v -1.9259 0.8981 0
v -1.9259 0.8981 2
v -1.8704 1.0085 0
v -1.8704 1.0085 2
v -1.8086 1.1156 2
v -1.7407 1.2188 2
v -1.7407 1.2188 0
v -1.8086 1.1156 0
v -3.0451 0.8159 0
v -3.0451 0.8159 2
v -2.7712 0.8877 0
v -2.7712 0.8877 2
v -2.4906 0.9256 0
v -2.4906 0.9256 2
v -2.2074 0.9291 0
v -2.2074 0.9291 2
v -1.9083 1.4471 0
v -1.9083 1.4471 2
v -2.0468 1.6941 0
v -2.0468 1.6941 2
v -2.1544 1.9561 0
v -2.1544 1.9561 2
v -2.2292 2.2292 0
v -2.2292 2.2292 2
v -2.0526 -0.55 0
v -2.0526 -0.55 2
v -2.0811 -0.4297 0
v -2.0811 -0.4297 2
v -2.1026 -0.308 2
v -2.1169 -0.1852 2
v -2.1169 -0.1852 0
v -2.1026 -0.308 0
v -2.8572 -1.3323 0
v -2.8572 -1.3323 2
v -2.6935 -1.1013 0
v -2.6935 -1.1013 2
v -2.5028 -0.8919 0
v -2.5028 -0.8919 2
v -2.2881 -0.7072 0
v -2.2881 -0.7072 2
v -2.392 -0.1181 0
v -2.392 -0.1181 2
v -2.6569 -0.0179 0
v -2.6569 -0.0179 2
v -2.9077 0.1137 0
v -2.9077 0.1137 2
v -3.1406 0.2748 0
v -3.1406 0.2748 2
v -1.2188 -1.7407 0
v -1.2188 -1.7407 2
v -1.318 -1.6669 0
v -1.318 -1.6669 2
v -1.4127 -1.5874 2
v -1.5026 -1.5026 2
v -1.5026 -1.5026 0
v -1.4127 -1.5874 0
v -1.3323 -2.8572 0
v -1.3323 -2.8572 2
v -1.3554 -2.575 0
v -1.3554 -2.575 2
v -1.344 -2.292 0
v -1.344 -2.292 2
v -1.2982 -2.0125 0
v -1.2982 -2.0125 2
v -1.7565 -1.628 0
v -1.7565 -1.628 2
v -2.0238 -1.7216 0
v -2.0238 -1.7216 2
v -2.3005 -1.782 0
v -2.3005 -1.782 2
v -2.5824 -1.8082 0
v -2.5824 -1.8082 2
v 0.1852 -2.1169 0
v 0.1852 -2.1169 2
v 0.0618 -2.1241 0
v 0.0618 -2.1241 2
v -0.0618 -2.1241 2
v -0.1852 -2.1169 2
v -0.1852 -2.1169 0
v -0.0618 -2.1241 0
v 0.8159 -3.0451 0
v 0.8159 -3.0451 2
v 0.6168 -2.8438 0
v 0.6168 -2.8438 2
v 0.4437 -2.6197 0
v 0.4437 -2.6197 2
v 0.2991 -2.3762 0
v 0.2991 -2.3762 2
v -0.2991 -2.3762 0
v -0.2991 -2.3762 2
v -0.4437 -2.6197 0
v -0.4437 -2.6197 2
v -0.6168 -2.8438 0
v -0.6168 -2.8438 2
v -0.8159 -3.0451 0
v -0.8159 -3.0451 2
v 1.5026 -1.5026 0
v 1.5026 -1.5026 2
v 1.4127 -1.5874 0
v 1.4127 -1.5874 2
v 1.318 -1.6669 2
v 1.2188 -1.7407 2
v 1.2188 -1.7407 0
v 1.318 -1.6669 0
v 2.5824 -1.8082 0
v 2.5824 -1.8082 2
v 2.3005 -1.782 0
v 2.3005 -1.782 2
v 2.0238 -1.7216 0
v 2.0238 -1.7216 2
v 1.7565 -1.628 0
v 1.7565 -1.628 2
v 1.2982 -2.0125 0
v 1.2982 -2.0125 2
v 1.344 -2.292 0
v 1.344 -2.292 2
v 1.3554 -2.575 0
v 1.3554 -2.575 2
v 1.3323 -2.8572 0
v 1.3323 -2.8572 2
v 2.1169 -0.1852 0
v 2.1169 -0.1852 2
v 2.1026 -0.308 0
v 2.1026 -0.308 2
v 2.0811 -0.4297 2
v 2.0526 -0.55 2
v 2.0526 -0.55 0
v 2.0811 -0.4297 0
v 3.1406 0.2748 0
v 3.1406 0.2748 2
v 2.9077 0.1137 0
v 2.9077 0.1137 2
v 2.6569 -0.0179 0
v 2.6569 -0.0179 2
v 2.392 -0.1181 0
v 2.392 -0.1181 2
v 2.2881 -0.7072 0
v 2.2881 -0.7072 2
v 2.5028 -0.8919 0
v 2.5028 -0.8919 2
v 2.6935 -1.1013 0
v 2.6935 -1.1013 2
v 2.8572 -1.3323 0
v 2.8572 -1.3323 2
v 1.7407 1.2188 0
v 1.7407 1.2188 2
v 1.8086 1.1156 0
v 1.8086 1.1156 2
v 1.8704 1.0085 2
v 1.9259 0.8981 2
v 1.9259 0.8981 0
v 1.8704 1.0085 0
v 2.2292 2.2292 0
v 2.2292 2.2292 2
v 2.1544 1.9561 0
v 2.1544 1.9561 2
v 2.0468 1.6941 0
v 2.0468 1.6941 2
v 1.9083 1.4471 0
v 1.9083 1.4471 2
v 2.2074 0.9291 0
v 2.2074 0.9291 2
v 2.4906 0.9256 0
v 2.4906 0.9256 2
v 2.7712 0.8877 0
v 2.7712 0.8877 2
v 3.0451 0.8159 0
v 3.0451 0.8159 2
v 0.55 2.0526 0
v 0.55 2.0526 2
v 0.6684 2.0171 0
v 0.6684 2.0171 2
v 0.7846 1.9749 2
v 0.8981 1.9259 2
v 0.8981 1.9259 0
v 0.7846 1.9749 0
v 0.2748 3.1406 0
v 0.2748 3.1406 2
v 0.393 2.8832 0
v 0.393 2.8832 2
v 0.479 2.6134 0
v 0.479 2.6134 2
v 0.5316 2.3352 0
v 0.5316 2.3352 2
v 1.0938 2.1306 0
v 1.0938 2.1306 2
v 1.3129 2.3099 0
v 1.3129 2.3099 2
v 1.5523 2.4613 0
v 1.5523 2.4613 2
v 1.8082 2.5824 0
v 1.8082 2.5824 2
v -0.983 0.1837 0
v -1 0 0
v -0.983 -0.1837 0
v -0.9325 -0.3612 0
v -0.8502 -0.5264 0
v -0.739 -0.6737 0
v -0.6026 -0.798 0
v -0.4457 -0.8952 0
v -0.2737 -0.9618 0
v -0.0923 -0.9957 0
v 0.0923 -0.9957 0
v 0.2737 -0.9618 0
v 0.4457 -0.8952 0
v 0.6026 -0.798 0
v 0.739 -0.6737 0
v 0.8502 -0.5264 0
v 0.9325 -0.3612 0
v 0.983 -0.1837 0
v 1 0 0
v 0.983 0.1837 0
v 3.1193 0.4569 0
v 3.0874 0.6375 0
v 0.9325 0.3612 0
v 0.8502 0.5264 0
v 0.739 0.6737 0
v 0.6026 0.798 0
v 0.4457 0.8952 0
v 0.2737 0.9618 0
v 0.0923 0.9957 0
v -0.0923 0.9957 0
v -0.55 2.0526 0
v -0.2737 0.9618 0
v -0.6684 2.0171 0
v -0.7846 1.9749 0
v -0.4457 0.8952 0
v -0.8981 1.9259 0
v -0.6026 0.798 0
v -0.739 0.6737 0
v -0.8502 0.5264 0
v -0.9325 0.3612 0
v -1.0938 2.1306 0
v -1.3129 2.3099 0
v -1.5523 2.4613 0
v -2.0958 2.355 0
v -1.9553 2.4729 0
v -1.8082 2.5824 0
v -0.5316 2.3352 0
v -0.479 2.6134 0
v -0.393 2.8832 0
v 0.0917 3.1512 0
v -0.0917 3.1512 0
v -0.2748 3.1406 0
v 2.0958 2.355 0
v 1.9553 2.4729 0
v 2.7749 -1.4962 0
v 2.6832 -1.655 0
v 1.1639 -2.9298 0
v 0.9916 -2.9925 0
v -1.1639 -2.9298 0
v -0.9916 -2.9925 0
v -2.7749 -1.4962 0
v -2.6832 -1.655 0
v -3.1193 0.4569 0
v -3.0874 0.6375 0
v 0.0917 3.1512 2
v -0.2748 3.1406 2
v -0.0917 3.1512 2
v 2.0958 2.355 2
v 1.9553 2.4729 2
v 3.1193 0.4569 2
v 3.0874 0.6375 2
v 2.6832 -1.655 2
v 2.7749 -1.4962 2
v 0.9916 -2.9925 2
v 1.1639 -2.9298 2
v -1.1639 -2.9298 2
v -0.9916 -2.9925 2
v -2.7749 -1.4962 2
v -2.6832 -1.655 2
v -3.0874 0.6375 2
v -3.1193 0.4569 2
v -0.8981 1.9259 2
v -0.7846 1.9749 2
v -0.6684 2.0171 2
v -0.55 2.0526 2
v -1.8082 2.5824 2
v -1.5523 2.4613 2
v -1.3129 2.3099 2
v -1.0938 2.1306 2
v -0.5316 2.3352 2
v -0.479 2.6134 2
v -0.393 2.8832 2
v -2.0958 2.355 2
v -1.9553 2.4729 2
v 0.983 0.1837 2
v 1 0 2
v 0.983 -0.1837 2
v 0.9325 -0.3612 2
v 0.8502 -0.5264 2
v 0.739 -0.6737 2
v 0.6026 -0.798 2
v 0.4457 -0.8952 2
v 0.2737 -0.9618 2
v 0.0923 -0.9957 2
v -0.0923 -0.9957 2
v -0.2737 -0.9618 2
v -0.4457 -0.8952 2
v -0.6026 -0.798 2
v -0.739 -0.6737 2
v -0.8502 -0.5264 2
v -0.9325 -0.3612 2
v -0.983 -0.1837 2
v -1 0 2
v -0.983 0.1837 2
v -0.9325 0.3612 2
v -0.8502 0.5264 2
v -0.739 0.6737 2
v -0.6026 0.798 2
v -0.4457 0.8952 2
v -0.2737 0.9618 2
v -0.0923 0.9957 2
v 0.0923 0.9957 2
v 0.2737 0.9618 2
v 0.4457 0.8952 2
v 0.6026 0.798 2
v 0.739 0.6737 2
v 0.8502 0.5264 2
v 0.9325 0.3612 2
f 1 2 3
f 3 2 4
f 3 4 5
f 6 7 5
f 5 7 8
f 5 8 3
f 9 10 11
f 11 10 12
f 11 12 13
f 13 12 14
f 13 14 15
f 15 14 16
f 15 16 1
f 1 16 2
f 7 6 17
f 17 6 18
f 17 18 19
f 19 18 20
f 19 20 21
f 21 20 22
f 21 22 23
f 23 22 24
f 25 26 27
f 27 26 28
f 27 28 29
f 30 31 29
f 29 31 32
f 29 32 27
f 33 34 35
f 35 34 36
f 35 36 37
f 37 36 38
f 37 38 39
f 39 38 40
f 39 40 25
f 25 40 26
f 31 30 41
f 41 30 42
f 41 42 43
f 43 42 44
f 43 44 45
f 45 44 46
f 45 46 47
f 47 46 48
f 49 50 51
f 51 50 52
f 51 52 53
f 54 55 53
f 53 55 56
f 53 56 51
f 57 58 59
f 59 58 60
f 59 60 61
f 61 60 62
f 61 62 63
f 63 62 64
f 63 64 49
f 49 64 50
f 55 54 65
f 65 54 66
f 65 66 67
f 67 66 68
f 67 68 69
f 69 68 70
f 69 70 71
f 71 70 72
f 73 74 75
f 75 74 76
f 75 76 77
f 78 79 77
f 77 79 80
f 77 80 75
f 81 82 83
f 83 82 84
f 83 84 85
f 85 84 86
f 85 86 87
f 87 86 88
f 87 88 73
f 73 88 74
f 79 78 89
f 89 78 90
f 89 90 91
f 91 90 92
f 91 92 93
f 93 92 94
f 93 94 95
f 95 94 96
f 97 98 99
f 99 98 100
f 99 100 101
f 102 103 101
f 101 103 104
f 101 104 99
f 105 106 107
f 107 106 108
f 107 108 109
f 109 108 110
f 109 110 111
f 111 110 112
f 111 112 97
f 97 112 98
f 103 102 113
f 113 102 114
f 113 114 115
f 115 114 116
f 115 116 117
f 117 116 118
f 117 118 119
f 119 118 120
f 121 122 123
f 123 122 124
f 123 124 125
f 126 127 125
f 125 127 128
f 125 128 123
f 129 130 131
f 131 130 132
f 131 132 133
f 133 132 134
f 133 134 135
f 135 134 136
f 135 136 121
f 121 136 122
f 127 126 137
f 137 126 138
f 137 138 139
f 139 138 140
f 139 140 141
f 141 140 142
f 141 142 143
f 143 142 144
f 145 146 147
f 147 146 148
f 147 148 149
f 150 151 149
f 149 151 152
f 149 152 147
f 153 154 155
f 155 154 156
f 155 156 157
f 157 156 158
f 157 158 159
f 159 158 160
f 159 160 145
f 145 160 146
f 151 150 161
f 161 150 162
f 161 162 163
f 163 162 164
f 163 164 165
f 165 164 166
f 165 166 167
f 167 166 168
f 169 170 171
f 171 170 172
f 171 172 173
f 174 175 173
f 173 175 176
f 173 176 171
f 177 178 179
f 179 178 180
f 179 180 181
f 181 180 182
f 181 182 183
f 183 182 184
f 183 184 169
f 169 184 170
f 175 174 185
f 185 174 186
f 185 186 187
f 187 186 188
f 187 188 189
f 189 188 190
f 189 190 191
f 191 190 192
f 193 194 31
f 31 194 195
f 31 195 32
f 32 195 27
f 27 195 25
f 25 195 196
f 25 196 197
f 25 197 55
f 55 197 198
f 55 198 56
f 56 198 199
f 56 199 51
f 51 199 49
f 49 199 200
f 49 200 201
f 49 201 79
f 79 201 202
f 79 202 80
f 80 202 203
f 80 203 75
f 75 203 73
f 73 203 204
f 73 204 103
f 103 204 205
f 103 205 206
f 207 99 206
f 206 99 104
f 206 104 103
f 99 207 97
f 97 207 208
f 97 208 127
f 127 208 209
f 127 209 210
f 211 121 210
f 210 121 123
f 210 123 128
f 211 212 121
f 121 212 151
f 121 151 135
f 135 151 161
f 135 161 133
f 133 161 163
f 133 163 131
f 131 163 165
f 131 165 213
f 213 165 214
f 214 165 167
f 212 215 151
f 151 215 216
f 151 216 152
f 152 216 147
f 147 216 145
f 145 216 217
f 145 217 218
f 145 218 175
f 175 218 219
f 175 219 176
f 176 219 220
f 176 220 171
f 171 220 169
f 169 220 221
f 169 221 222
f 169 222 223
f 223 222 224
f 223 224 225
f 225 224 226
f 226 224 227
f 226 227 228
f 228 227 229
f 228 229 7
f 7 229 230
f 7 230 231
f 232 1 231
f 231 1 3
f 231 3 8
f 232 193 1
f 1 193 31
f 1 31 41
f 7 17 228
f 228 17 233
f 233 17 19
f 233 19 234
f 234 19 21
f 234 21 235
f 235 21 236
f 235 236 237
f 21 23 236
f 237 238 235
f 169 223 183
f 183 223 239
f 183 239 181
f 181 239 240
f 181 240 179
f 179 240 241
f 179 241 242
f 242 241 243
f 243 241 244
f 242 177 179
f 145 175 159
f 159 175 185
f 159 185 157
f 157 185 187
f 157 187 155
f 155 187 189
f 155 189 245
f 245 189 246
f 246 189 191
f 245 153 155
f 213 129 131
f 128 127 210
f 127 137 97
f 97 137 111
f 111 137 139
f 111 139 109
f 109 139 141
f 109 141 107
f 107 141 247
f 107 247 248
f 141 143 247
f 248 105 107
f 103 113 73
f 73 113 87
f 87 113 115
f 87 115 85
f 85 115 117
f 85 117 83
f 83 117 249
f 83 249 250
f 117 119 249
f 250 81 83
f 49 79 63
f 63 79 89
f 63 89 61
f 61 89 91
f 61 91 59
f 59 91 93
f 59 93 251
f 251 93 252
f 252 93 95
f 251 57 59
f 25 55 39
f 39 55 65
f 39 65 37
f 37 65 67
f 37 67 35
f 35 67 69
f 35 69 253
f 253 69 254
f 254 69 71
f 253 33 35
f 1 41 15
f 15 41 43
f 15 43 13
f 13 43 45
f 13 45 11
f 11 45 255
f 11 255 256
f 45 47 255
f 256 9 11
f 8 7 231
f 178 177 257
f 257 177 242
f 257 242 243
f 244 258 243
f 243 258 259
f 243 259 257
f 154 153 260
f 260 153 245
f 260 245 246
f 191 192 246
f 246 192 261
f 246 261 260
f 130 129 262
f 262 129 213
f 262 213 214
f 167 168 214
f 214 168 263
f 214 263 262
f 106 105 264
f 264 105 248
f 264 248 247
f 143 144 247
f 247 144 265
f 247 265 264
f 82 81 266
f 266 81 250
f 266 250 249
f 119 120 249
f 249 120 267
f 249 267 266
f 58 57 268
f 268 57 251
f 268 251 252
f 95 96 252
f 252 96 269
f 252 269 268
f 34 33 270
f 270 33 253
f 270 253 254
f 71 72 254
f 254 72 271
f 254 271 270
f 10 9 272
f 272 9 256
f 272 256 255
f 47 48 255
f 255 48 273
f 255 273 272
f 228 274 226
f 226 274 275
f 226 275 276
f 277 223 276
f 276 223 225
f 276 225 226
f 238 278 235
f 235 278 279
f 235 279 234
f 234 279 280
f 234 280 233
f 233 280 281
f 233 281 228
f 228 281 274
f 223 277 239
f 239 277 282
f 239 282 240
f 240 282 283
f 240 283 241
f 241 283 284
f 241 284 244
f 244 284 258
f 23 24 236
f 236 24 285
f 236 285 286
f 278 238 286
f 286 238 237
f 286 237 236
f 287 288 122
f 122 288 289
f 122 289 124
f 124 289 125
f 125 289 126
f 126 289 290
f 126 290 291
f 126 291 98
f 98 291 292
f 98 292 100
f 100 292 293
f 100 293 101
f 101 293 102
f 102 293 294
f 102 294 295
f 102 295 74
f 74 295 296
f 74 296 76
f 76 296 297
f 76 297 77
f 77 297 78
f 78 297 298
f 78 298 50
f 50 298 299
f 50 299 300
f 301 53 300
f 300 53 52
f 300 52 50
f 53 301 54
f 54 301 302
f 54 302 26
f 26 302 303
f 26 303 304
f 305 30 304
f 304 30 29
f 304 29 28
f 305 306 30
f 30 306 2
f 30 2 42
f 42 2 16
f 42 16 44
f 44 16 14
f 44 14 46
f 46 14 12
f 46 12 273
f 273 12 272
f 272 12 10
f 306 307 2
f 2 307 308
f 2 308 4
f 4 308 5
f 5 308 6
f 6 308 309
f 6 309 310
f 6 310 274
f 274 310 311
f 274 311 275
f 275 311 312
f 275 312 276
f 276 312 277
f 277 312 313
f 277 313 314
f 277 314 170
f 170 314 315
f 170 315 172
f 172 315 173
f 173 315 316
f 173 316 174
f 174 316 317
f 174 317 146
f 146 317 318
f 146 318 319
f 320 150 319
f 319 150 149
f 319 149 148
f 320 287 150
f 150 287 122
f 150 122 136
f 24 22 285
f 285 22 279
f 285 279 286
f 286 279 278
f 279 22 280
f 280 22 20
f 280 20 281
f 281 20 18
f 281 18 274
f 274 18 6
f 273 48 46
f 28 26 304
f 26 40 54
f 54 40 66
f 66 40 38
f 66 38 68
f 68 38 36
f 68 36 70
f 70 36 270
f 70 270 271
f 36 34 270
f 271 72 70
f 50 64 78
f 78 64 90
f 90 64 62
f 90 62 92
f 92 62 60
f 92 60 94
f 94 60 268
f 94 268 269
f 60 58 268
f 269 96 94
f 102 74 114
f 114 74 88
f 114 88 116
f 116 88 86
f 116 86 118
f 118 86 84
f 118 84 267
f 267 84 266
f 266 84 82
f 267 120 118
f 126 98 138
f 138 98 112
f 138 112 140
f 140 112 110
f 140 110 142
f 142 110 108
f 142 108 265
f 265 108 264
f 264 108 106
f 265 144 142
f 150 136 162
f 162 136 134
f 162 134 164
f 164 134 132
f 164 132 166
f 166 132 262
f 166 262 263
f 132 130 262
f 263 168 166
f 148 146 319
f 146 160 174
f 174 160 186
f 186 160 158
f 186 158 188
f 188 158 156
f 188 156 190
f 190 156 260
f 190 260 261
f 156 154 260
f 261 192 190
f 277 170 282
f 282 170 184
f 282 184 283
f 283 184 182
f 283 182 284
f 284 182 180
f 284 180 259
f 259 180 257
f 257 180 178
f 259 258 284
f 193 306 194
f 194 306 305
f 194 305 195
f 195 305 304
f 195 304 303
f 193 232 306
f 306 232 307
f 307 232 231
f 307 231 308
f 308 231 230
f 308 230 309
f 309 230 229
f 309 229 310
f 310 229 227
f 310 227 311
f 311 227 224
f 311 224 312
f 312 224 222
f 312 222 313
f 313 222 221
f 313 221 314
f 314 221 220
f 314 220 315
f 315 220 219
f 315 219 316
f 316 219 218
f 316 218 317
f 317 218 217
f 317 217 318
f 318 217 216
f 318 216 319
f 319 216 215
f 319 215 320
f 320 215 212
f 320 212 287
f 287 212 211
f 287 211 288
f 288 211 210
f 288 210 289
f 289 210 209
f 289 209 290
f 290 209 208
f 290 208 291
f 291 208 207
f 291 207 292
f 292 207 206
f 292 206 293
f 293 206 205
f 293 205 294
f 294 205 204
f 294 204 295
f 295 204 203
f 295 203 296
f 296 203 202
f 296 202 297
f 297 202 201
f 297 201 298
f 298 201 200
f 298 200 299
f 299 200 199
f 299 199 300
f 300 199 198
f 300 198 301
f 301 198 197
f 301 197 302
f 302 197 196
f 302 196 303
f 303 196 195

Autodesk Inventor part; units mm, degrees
sketch "Sketch1" plane through (0, 0, 0) normal (0, 0, 1) x (1, 0, 0)
  circle A0 centre (0, 0) radius 3.1526
  dimension "d0" = 6.3051
extrude "Extrusion1" add sketch "Sketch1" along normal blind 2
ref_plane "Work Plane2" through (0, 0, 1) normal (0, 0, 1) x (1, 0, 0)
sketch "Sketch2" plane through (0, 0, 0) normal (0, 0, -1) x (-1, 0, 0)
  circle A0 centre (0, 0) radius 3.1526 projected
  circle A1 centre (0, 0) radius 2.25
  dimension "d3" = 4.5
surface extrude "Pitch Diameter" sketch "Sketch2" against normal through all shown no curves A1
ref_plane "Work Plane8" through (0, 0, 0) normal (0.9396926, 0.3420201, 0) x (0, 0, 1)
ref_plane "Work Plane9" through (0, 0, 0) normal (1, 0, 0) x (0, 1, 0)
spur gear teeth "Spur Gear" teeth 9 pitch diameter 4.5 tip diameter 6.3051 root diameter 4.25 face width 2 start plane through (0, 0, 0) normal (0, 0, -1) x (-1, 0, 0)
sketch "Sketch3" plane through (0, 0, 2) normal (0, 0, 1) x (1, 0, 0)
  circle A0 centre (0, 0) radius 1
  dimension "d49" = 2
extrude "Extrusion2" cut sketch "Sketch3" against normal up to surface (2 mm away)
equation "\"d0\" = da_da"
equation "\"d1\" = da_b"
equation "\"d3\" = da_d"
equation "\"d16\" = da_aw"
equation "\"d43\" = da_aw"
equation "\"d46\" = da_aw"
equation "\"da_da\" = 6.305131"
equation "\"da_b\" = 2"
equation "\"da_d\" = 4.5"
equation "\"da_aw\" = 14.951817"
properties part number "Spur Gear2" material "Steel"
